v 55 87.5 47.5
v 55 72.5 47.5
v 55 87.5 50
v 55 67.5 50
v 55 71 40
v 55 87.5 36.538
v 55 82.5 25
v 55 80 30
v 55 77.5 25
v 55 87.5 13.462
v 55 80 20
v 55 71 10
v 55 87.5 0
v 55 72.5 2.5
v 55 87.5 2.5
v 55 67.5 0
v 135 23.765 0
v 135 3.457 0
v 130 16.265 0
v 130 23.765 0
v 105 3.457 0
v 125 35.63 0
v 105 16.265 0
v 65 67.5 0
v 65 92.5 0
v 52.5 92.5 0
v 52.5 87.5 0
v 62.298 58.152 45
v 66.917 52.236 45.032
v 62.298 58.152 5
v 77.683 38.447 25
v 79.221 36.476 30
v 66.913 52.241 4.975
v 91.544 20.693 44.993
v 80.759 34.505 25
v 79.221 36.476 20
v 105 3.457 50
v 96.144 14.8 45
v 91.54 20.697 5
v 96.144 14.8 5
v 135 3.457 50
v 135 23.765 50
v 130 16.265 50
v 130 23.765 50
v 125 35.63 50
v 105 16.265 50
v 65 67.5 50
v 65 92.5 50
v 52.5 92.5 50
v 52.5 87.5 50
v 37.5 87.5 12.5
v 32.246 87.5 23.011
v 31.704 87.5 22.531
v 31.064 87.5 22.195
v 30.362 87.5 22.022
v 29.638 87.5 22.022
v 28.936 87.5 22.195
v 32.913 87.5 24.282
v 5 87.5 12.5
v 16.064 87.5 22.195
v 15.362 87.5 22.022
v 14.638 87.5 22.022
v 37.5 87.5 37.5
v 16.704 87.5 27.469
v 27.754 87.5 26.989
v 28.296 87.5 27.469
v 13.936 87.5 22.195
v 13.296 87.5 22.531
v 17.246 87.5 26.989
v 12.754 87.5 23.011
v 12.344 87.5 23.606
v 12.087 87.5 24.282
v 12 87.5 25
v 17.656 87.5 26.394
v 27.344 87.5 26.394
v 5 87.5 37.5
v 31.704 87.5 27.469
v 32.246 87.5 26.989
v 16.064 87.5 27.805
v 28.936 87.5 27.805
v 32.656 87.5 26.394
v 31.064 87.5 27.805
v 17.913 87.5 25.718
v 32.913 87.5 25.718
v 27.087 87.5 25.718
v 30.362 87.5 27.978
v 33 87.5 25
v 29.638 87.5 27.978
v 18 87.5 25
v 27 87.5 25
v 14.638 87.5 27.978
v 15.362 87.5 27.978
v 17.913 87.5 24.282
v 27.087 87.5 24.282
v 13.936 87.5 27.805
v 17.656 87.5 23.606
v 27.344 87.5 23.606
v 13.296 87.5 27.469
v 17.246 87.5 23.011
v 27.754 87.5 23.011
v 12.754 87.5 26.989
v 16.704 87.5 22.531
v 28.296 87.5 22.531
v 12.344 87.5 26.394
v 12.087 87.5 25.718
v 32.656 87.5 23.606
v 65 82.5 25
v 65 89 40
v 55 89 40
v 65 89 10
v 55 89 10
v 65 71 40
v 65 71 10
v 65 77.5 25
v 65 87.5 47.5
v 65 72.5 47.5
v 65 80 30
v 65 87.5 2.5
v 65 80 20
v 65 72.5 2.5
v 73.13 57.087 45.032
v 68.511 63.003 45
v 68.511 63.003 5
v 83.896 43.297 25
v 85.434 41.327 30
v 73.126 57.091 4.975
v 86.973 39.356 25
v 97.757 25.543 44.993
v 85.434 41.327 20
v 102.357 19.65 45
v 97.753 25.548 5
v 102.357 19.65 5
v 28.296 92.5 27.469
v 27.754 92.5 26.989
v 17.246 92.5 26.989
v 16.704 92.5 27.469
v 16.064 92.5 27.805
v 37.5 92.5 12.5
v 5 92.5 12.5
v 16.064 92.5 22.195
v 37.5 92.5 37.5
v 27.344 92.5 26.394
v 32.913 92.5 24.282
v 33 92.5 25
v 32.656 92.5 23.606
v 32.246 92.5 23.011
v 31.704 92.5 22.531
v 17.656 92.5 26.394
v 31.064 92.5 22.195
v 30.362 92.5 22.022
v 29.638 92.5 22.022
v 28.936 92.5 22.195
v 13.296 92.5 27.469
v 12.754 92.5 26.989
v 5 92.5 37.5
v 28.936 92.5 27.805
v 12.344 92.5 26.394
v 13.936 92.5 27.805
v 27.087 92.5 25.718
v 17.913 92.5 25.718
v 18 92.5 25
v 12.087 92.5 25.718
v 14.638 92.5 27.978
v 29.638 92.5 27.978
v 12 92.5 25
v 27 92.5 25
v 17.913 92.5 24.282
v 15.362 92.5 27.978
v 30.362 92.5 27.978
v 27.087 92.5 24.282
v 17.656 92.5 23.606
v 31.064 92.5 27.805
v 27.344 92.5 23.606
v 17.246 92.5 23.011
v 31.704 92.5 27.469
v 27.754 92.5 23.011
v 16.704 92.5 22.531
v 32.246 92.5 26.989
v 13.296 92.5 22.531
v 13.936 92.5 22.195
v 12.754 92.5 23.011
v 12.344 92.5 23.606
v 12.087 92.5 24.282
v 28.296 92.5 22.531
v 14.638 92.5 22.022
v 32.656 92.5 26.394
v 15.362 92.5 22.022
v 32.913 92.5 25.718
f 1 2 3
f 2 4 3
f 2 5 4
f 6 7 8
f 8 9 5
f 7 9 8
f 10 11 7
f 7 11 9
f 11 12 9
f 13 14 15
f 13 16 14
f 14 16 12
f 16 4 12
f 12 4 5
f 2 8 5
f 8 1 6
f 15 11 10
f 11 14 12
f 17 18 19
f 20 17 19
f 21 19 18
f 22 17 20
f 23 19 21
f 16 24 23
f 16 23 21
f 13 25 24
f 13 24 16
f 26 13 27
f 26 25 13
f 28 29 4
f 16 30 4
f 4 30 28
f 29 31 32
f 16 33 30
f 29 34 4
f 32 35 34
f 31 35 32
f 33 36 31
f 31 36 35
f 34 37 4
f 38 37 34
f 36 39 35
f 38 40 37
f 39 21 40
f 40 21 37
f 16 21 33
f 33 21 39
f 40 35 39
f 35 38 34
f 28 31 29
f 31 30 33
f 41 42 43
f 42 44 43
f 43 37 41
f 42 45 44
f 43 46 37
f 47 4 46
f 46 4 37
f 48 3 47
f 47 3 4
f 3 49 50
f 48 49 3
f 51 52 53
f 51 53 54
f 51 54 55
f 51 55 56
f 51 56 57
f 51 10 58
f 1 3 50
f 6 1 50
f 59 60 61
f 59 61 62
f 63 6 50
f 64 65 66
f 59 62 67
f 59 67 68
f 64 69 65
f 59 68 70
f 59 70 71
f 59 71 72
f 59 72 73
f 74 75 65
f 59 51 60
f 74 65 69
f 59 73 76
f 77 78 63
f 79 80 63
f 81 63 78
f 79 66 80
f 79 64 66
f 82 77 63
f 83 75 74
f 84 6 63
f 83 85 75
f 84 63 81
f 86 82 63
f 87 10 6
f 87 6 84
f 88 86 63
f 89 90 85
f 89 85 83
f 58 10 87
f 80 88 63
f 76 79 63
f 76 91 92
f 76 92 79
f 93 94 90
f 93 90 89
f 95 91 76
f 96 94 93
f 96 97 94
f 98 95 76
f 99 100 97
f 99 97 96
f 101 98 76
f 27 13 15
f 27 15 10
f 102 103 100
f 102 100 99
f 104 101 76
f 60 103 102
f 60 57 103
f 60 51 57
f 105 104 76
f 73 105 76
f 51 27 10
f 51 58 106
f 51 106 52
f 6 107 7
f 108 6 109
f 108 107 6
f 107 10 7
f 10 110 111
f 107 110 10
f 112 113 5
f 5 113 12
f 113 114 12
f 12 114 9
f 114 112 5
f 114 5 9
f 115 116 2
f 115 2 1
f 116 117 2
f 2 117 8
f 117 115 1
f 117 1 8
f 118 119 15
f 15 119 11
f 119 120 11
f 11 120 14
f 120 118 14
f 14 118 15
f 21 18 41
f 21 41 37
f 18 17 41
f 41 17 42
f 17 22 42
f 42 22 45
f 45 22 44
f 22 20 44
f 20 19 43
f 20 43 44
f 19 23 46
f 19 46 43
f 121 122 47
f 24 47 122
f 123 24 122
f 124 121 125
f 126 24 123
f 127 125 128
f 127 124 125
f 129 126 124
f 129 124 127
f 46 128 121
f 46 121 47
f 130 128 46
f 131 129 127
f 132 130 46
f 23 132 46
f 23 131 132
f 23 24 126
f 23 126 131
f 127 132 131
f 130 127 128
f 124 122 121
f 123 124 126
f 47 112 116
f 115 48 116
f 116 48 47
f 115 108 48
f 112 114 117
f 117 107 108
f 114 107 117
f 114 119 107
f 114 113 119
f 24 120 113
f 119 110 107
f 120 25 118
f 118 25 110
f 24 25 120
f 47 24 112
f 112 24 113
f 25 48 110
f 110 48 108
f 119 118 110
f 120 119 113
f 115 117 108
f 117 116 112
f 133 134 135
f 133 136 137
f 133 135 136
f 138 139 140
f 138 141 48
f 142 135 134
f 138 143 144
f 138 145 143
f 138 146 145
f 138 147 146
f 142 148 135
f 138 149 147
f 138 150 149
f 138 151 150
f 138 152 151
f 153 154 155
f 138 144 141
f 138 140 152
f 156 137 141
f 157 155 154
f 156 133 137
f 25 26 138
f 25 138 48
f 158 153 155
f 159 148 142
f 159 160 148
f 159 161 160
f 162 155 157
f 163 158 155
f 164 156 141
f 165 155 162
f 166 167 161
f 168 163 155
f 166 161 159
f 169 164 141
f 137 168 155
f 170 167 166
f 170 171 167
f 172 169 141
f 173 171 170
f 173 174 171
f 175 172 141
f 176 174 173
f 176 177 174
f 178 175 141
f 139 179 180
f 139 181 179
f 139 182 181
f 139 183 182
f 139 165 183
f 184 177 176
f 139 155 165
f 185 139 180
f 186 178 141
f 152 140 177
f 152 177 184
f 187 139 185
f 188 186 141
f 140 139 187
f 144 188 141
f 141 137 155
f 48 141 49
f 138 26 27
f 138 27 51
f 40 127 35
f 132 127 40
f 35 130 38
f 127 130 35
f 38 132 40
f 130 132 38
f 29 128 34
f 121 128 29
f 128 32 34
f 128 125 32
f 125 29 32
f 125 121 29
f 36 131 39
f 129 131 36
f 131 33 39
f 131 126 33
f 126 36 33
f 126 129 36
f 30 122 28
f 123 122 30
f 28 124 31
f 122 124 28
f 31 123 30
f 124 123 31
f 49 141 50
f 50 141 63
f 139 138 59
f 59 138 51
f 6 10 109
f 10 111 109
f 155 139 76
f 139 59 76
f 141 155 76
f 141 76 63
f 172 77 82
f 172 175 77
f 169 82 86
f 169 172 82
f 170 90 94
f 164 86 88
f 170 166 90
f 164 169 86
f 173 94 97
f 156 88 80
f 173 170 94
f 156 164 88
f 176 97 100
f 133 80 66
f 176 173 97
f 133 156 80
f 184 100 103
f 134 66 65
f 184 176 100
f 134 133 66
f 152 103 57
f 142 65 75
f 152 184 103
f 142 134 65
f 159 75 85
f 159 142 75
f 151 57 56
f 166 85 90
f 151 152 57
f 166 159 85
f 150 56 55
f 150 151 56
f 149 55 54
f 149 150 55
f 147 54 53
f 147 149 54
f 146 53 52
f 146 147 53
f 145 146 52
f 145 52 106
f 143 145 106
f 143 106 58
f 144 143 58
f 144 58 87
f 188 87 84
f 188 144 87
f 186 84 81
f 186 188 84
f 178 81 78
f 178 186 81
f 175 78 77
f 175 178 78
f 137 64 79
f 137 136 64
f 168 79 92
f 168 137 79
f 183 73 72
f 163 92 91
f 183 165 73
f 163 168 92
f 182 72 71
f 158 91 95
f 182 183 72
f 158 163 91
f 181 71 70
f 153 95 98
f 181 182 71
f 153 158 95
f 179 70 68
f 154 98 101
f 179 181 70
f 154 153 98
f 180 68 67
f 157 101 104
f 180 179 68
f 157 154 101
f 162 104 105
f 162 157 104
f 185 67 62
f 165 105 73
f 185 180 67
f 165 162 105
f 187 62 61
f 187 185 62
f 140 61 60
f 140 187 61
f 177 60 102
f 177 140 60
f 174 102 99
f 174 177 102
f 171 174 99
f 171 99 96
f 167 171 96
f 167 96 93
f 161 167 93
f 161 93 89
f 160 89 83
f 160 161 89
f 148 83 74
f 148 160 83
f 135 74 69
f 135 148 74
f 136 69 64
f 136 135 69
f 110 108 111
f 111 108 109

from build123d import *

# Parameters (mm, degrees)
PAD_DEPTH       = 50
POCKET_DEPTH    = 10
POCKET001_DEPTH = 5
POCKET002_DEPTH = 5
POCKET003_DEPTH = 86.7059680197
SKETCH001_R     = 3
HOLE_DEPTH      = 92.501


with BuildPart() as part:
    # Sketch → Pad (new body)
    with BuildSketch(Plane.XY):
        Polygon((5, 92.5), (65, 92.5), (65, 67.5), (105, 16.2652461702), (130, 16.2652461702), (130, 23.7652461702), (125, 35.6301629012), (135, 23.7652461702), (135, 3.4565577128), (105, 3.4565577128), (55, 67.5), (55, 87.5), (5, 87.5), align=None)
    extrude(amount=PAD_DEPTH)

    # Sketch005 → Pocket (cut)
    with BuildSketch(Plane.YZ.offset(65)):
        Polygon((72.5, 47.5), (87.5, 47.5), (80, 30), align=None)
        Polygon((80, 20), (72.5, 2.5), (87.5, 2.5), align=None)
        Polygon((71, 40), (77.5, 25), (71, 10), align=None)
        Polygon((82.5, 25), (89, 40), (89, 10), align=None)
    extrude(amount=-POCKET_DEPTH, mode=Mode.SUBTRACT)

    # Sketch002 → Pocket001 (cut)
    with BuildSketch(Plane(origin=(0, 92.5, 0), x_dir=(-1, 0, 0), z_dir=(0, 1, 0))):
        Polygon((-52.5, 50), (-37.5, 37.5), (-5, 37.5), (-5, 50), align=None)
    extrude(amount=-POCKET001_DEPTH, mode=Mode.SUBTRACT)

    # Sketch003 → Pocket002 (cut)
    with BuildSketch(Plane(origin=(0, 92.5, 0), x_dir=(-1, 0, 0), z_dir=(0, 1, 0))):
        Polygon((-52.5, 0), (-37.5, 12.500000002), (-5, 12.5), (-5, 0), align=None)
    extrude(amount=-POCKET002_DEPTH, mode=Mode.SUBTRACT)

    # Sketch008 (on Face23 of Pocket002) → Pocket003 (cut, through all)
    with BuildSketch(Plane(origin=(73.1263515599, 57.0912094574, 0), x_dir=(-0.6153846154, 0.788226982, 0), z_dir=(0.788226982, 0.6153846154, 0))):
        Polygon((7.5, 5), (7.5, 45), (-17.5, 25), align=None)
        Polygon((-47.5, 5), (-47.5, 45), (-22.5, 25), align=None)
        Polygon((-0.005547, 45.032113), (-40.0240908379, 44.9926101173), (-20, 30), align=None)
        Polygon((-20, 20), (0, 4.9752679886), (-40.0185556925, 5), align=None)
    extrude(amount=-POCKET003_DEPTH, mode=Mode.SUBTRACT)

    # Sketch001 → Hole (cut, through all)
    with BuildSketch(Plane.XZ):
        with Locations((15, 25)):
            Circle(SKETCH001_R)
        with Locations((30, 25)):
            Circle(SKETCH001_R)
    extrude(amount=-HOLE_DEPTH, mode=Mode.SUBTRACT)


solid = part.part
